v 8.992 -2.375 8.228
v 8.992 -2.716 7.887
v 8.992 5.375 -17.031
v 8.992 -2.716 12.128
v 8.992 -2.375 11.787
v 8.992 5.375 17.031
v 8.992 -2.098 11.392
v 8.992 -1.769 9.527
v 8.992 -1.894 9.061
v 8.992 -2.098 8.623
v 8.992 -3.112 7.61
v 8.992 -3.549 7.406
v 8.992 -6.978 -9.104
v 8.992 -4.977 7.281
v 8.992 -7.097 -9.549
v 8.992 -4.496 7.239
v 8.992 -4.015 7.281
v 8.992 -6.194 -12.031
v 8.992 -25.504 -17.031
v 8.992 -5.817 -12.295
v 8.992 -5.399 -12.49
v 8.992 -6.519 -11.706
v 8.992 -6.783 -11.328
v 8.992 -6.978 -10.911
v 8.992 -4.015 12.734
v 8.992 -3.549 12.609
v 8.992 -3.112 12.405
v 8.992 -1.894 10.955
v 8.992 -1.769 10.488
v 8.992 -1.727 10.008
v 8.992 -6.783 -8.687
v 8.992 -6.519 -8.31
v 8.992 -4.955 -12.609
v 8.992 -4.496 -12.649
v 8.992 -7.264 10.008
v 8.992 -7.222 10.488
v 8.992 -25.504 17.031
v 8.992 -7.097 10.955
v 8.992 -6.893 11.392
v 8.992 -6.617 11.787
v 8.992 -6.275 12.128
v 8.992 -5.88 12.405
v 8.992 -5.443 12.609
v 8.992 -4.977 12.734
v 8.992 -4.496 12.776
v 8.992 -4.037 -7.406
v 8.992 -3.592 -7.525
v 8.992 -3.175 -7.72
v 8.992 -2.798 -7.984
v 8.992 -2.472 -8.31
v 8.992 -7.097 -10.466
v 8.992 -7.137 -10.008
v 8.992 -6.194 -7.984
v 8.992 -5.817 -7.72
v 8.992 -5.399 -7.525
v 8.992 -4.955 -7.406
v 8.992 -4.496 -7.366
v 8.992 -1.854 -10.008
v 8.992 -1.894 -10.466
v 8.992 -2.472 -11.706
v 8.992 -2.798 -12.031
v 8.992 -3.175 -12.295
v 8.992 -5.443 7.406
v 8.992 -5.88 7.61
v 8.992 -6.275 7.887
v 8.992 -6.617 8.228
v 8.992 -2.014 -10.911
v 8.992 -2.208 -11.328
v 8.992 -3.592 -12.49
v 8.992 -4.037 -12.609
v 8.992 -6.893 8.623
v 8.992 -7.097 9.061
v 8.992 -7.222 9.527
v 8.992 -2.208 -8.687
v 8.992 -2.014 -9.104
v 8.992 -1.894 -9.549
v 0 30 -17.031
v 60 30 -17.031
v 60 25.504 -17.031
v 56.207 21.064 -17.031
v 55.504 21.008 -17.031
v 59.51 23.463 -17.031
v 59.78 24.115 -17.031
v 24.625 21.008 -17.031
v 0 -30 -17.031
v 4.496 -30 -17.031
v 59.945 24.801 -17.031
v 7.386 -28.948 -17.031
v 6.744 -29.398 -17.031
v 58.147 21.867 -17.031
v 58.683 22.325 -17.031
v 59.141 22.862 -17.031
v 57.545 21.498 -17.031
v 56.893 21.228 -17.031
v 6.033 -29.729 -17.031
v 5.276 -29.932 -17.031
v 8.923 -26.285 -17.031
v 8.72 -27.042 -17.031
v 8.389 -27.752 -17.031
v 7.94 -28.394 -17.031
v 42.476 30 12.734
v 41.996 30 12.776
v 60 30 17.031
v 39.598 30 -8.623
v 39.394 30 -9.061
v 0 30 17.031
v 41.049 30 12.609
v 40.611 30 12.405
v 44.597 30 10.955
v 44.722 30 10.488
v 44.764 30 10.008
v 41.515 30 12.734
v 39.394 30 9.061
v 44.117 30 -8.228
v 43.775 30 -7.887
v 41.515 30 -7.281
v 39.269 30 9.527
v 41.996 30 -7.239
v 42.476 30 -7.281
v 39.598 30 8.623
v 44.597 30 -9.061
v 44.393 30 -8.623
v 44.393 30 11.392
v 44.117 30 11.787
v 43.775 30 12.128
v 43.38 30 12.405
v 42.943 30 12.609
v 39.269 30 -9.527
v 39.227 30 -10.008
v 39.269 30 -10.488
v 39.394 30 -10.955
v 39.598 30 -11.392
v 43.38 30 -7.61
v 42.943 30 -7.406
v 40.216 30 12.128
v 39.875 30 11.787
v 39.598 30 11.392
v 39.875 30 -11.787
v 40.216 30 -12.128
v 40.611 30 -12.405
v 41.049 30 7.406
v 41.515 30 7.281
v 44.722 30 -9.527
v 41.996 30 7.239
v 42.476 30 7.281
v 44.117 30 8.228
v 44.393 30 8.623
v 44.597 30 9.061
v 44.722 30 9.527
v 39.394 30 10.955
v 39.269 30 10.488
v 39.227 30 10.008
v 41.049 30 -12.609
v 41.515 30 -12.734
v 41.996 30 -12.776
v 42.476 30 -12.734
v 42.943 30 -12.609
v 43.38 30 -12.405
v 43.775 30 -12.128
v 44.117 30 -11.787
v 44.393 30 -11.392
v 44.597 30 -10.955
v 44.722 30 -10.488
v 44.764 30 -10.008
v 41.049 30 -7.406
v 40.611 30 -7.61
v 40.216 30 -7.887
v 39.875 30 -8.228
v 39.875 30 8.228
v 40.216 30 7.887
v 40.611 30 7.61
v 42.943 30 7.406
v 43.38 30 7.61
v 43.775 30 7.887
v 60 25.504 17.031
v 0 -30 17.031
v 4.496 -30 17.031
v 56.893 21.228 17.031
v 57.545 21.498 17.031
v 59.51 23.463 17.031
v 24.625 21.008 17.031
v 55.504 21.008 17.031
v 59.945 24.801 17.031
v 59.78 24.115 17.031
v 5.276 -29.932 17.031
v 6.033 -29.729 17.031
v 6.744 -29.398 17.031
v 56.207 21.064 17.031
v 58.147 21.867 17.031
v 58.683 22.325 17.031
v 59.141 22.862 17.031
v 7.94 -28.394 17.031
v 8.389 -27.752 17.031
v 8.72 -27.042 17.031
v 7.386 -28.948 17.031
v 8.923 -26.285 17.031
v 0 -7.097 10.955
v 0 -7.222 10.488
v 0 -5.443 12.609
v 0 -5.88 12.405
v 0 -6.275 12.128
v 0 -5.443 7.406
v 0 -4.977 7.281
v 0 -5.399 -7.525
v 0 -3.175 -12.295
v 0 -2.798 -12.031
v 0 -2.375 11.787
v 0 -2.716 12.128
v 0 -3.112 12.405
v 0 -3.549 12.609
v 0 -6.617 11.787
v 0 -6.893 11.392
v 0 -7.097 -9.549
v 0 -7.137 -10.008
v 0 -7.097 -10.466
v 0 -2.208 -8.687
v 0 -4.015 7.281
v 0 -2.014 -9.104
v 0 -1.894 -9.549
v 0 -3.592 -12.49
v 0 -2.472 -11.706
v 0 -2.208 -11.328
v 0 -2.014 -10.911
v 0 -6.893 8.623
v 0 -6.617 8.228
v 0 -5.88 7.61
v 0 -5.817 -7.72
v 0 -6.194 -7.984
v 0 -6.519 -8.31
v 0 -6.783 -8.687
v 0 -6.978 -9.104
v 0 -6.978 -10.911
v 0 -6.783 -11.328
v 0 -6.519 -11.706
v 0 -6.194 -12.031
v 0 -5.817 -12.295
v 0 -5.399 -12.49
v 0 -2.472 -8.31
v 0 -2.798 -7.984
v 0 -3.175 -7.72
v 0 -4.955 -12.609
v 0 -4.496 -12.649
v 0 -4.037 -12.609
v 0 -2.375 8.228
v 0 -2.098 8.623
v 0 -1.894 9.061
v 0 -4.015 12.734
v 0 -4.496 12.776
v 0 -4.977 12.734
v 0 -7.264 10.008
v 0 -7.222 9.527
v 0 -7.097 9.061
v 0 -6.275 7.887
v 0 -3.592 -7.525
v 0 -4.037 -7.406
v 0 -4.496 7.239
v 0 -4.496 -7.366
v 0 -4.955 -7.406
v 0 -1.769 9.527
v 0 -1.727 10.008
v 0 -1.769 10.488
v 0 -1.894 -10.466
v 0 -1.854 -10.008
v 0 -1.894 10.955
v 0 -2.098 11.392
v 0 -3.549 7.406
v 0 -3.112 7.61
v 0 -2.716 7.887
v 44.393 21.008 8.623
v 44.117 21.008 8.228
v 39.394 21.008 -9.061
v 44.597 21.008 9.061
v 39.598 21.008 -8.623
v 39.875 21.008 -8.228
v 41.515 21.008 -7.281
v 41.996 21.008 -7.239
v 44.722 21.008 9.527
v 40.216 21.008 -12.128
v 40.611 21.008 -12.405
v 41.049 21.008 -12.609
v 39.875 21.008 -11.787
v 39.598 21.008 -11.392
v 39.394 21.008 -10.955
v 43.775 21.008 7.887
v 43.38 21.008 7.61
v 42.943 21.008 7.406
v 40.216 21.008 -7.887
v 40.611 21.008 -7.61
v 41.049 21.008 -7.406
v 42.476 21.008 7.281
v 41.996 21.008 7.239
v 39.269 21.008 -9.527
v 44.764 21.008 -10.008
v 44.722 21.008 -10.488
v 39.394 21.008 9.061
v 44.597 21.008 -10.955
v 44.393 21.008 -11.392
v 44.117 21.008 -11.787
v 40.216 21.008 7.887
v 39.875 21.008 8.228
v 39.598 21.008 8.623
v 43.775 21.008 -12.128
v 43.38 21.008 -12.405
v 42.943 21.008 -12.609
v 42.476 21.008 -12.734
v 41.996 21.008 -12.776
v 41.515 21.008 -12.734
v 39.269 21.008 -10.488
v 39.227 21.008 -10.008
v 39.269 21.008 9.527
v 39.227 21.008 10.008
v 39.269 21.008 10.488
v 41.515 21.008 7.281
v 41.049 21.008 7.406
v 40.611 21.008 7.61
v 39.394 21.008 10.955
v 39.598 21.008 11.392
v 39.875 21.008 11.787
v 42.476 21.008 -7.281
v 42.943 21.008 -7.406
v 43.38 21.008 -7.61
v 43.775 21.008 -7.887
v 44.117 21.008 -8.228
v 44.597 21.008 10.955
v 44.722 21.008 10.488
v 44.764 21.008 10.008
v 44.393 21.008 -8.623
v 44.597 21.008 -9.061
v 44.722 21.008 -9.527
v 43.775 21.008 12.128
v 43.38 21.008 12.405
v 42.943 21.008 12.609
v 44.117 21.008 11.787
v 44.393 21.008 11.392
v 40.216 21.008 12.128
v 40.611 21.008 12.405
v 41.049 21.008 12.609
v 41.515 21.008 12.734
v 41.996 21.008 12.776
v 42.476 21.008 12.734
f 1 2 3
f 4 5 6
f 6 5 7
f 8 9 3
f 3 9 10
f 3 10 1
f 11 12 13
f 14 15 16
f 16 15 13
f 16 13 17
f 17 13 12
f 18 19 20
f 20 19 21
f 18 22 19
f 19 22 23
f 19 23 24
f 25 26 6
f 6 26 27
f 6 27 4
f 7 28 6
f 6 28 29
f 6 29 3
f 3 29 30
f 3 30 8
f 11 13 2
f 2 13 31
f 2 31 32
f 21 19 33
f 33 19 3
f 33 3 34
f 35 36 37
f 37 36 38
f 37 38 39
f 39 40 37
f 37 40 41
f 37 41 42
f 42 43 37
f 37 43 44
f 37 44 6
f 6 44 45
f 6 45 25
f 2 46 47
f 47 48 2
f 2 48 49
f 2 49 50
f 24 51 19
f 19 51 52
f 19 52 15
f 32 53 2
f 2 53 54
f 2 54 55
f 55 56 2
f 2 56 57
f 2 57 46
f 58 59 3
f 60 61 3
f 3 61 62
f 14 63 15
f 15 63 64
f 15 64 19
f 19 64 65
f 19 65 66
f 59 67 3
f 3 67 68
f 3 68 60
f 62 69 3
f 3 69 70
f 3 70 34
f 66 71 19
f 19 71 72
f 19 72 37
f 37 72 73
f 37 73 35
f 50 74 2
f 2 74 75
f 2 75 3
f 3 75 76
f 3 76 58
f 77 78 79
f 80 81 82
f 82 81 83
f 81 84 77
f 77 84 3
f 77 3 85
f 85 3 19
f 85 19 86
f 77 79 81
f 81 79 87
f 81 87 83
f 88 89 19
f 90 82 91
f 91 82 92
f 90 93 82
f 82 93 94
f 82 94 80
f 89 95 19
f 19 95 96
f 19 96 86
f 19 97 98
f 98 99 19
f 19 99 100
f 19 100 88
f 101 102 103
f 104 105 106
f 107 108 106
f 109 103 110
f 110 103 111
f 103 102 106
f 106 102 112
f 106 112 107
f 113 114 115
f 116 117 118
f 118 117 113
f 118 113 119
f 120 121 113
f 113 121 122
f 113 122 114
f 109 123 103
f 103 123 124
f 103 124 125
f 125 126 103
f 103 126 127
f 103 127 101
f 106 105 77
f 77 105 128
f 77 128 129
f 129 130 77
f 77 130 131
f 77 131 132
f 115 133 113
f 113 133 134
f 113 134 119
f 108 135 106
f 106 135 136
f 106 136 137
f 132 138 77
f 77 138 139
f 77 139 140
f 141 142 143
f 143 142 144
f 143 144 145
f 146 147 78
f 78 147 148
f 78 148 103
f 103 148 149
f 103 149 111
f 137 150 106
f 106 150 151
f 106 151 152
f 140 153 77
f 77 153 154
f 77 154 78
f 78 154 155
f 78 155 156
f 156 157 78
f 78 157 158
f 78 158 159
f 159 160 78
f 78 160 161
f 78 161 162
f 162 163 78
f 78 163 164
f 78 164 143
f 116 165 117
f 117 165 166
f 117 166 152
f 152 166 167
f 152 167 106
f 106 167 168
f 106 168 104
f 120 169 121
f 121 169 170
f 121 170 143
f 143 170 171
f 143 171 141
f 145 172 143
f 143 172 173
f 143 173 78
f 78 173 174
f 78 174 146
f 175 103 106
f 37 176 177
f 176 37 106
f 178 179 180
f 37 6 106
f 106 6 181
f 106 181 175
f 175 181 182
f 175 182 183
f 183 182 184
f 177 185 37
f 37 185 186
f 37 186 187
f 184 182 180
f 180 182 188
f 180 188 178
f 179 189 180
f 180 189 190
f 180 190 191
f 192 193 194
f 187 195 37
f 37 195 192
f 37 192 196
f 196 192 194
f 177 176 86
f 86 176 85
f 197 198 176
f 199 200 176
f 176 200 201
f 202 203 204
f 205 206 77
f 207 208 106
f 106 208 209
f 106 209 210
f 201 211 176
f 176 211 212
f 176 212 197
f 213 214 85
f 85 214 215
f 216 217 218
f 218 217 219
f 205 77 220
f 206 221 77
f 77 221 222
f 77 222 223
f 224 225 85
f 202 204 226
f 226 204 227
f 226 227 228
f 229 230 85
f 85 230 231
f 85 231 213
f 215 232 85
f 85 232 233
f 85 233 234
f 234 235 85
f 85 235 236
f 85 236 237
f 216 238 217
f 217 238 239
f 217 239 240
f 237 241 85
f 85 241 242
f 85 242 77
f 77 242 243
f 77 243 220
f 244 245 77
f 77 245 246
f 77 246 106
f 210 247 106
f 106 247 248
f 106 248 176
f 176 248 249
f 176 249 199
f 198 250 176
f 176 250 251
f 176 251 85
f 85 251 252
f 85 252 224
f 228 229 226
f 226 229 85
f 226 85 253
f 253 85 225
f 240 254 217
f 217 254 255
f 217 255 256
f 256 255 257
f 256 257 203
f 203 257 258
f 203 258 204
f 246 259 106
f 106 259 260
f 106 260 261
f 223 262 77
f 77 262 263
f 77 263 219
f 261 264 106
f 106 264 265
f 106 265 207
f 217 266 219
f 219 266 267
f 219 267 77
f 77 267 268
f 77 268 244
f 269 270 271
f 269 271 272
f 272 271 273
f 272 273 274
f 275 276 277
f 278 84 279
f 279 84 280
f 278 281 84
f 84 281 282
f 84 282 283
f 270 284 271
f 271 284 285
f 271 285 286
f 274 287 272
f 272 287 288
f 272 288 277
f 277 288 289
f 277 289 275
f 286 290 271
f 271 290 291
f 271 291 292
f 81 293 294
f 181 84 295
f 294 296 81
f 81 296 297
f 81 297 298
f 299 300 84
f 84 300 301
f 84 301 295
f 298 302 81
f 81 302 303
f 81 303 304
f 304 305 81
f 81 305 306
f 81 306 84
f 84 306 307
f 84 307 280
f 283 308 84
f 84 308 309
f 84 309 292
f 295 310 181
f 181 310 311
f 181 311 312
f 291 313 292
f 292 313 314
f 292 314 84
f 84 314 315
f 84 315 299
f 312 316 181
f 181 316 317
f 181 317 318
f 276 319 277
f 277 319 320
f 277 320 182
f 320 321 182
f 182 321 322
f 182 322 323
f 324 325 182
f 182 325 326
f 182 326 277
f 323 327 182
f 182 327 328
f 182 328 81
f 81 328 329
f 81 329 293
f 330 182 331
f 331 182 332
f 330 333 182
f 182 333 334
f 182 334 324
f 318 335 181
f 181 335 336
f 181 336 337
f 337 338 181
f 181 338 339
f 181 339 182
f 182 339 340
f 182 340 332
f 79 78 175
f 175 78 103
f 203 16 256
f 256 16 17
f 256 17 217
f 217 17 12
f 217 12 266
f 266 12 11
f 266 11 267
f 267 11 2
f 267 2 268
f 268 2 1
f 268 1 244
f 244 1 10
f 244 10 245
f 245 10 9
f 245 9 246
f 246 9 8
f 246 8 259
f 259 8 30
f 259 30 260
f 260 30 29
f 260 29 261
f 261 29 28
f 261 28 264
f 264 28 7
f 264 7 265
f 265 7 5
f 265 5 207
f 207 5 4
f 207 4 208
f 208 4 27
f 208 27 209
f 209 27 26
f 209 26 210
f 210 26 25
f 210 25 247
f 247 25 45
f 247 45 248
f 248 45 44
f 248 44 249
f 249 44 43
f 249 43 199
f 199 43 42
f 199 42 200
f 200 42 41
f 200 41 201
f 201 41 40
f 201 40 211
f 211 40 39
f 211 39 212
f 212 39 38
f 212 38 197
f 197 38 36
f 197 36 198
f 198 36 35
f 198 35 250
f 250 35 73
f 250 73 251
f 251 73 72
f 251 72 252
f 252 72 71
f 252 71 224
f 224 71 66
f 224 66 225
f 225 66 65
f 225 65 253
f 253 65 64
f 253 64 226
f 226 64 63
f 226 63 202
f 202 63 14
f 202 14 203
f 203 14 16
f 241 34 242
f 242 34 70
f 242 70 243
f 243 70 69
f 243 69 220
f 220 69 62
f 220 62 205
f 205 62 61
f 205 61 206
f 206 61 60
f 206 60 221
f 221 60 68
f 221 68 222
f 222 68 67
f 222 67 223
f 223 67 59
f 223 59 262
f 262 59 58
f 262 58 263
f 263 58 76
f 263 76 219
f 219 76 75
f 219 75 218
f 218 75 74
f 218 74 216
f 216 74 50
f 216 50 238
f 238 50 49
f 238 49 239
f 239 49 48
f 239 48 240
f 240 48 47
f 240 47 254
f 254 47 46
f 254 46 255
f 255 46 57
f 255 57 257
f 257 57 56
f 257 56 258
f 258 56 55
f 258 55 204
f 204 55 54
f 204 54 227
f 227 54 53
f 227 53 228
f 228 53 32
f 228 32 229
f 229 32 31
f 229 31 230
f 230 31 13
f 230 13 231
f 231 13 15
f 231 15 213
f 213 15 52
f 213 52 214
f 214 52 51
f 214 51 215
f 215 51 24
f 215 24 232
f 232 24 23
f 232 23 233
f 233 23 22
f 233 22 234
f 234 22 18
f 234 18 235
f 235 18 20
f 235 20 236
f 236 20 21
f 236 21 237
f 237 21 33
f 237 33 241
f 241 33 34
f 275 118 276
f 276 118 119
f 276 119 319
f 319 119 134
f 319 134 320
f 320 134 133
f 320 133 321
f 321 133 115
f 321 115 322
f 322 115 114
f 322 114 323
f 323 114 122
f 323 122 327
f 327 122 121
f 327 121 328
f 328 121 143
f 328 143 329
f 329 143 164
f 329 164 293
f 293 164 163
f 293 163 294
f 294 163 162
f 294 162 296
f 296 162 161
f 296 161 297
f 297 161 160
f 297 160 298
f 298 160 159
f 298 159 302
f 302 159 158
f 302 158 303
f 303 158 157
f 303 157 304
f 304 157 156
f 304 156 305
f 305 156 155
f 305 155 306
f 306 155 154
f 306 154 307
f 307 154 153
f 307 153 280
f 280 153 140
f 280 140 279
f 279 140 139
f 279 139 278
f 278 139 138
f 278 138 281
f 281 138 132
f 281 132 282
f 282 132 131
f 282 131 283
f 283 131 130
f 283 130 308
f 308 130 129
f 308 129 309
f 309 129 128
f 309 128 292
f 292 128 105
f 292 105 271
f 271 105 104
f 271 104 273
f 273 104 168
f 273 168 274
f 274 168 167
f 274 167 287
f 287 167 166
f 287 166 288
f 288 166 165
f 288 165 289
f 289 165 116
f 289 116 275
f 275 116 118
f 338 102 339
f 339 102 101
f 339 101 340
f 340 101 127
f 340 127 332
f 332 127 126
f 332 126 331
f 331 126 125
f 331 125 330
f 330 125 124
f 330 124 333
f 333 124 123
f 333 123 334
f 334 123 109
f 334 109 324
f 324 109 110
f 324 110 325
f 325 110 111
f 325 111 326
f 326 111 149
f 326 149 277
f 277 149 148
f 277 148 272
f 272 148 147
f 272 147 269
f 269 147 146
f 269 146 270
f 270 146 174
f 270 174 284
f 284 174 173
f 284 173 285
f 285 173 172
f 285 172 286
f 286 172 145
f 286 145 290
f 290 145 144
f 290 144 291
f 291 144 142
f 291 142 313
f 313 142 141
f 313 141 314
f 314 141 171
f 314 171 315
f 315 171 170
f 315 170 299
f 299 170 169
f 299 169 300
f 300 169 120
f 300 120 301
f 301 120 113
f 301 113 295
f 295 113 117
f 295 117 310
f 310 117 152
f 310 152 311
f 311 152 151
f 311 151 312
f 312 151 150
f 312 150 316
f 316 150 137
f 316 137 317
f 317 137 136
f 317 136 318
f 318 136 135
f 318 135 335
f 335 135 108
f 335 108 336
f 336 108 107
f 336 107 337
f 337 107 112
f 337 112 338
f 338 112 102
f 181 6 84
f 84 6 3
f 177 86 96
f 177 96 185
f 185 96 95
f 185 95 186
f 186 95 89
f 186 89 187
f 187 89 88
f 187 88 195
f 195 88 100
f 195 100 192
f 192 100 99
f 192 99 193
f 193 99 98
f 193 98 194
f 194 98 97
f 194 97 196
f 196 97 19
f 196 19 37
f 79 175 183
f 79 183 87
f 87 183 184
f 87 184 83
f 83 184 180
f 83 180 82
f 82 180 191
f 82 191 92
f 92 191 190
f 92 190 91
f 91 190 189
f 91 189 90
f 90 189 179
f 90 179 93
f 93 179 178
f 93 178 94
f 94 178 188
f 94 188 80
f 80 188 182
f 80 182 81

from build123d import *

# Parameters (mm, degrees)
SKETCH1_W           = 34.0614
SKETCH1_H           = 60
BOSS_EXTRUDE1_DEPTH = 8.9916
SKETCH2_W           = 34.0614
SKETCH2_H           = 8.9916
BOSS_EXTRUDE2_DEPTH = 51.0084
CUT_EXTRUDE2_REACH  = 10.992
SKETCH5_R           = 2.7686
SKETCH5_R_2         = 2.6416
CUT_EXTRUDE3_REACH  = 62
SKETCH6_R           = 2.7686
BOSS_EXTRUDE3_DEPTH = 34.0614
FILLET1_R           = 4.4958


with BuildPart() as part:
    # Sketch1 → Boss-Extrude1 (new body)
    with BuildSketch(Plane(origin=(0, 0, 0), x_dir=(0, 0, -1), z_dir=(1, 0, 0))):
        Rectangle(SKETCH1_W, SKETCH1_H)
    extrude(amount=BOSS_EXTRUDE1_DEPTH)

    # Sketch2 → Boss-Extrude2 (add)
    with BuildSketch(Plane(origin=(8.9916, 0, 0), x_dir=(0, 0, -1), z_dir=(1, 0, 0))):
        with Locations((0, 25.5042)):
            Rectangle(SKETCH2_W, SKETCH2_H)
    extrude(amount=BOSS_EXTRUDE2_DEPTH)

    # Sketch5 → Cut-Extrude2 (cut, up to next)
    with BuildSketch(Plane(origin=(8.9916, 0, 0), x_dir=(0, 0, -1), z_dir=(1, 0, 0)), mode=Mode.PRIVATE) as cut_extrude2_sk1:
        with Locations((-10.0076, -4.4958)):
            Circle(SKETCH5_R)
    cut_extrude2_tool1 = extrude(cut_extrude2_sk1.sketch, amount=-CUT_EXTRUDE2_REACH, mode=Mode.PRIVATE) & part.part
    add(cut_extrude2_tool1.solids().sort_by_distance((8.9916, -4.4958, 10.0076))[0], mode=Mode.SUBTRACT)
    # Sketch5 → Cut-Extrude2 (cut, up to next)
    with BuildSketch(Plane(origin=(8.9916, 0, 0), x_dir=(0, 0, -1), z_dir=(1, 0, 0)), mode=Mode.PRIVATE) as cut_extrude2_sk2:
        with Locations((10.0076, -4.4958)):
            Circle(SKETCH5_R_2)
    cut_extrude2_tool2 = extrude(cut_extrude2_sk2.sketch, amount=-CUT_EXTRUDE2_REACH, mode=Mode.PRIVATE) & part.part
    add(cut_extrude2_tool2.solids().sort_by_distance((8.9916, -4.4958, -10.0076))[0], mode=Mode.SUBTRACT)

    # Sketch6 → Cut-Extrude3 (cut, up to next)
    with BuildSketch(Plane(origin=(0, 30, 0), x_dir=(1, 0, 0), z_dir=(0, 1, 0)), mode=Mode.PRIVATE) as cut_extrude3_sk1:
        with Locations((41.995718, 10.0076)):
            Circle(SKETCH6_R)
    cut_extrude3_tool1 = extrude(cut_extrude3_sk1.sketch, amount=-CUT_EXTRUDE3_REACH, mode=Mode.PRIVATE) & part.part
    add(cut_extrude3_tool1.solids().sort_by_distance((41.995718, 30, -10.0076))[0], mode=Mode.SUBTRACT)
    # Sketch6 → Cut-Extrude3 (cut, up to next)
    with BuildSketch(Plane(origin=(0, 30, 0), x_dir=(1, 0, 0), z_dir=(0, 1, 0)), mode=Mode.PRIVATE) as cut_extrude3_sk2:
        with Locations((41.995718, -10.0076)):
            Circle(SKETCH6_R)
    cut_extrude3_tool2 = extrude(cut_extrude3_sk2.sketch, amount=-CUT_EXTRUDE3_REACH, mode=Mode.PRIVATE) & part.part
    add(cut_extrude3_tool2.solids().sort_by_distance((41.995718, 30, 10.0076))[0], mode=Mode.SUBTRACT)

    # Sketch7 → Boss-Extrude3 (add)
    with BuildSketch(Plane.XY.offset(17.0307)):
        Polygon((8.9916, 21.0084), (8.9916, 5.37450259), (24.62549741, 21.0084), align=None)
    extrude(amount=-BOSS_EXTRUDE3_DEPTH)

    # Fillet1
    fillet1_edges = [part.edges().sort_by_distance(p)[0] for p in [
        (8.9916, -30, 0),
        (60, 21.0084, 0),
    ]]
    fillet(fillet1_edges, radius=FILLET1_R)


solid = part.part
